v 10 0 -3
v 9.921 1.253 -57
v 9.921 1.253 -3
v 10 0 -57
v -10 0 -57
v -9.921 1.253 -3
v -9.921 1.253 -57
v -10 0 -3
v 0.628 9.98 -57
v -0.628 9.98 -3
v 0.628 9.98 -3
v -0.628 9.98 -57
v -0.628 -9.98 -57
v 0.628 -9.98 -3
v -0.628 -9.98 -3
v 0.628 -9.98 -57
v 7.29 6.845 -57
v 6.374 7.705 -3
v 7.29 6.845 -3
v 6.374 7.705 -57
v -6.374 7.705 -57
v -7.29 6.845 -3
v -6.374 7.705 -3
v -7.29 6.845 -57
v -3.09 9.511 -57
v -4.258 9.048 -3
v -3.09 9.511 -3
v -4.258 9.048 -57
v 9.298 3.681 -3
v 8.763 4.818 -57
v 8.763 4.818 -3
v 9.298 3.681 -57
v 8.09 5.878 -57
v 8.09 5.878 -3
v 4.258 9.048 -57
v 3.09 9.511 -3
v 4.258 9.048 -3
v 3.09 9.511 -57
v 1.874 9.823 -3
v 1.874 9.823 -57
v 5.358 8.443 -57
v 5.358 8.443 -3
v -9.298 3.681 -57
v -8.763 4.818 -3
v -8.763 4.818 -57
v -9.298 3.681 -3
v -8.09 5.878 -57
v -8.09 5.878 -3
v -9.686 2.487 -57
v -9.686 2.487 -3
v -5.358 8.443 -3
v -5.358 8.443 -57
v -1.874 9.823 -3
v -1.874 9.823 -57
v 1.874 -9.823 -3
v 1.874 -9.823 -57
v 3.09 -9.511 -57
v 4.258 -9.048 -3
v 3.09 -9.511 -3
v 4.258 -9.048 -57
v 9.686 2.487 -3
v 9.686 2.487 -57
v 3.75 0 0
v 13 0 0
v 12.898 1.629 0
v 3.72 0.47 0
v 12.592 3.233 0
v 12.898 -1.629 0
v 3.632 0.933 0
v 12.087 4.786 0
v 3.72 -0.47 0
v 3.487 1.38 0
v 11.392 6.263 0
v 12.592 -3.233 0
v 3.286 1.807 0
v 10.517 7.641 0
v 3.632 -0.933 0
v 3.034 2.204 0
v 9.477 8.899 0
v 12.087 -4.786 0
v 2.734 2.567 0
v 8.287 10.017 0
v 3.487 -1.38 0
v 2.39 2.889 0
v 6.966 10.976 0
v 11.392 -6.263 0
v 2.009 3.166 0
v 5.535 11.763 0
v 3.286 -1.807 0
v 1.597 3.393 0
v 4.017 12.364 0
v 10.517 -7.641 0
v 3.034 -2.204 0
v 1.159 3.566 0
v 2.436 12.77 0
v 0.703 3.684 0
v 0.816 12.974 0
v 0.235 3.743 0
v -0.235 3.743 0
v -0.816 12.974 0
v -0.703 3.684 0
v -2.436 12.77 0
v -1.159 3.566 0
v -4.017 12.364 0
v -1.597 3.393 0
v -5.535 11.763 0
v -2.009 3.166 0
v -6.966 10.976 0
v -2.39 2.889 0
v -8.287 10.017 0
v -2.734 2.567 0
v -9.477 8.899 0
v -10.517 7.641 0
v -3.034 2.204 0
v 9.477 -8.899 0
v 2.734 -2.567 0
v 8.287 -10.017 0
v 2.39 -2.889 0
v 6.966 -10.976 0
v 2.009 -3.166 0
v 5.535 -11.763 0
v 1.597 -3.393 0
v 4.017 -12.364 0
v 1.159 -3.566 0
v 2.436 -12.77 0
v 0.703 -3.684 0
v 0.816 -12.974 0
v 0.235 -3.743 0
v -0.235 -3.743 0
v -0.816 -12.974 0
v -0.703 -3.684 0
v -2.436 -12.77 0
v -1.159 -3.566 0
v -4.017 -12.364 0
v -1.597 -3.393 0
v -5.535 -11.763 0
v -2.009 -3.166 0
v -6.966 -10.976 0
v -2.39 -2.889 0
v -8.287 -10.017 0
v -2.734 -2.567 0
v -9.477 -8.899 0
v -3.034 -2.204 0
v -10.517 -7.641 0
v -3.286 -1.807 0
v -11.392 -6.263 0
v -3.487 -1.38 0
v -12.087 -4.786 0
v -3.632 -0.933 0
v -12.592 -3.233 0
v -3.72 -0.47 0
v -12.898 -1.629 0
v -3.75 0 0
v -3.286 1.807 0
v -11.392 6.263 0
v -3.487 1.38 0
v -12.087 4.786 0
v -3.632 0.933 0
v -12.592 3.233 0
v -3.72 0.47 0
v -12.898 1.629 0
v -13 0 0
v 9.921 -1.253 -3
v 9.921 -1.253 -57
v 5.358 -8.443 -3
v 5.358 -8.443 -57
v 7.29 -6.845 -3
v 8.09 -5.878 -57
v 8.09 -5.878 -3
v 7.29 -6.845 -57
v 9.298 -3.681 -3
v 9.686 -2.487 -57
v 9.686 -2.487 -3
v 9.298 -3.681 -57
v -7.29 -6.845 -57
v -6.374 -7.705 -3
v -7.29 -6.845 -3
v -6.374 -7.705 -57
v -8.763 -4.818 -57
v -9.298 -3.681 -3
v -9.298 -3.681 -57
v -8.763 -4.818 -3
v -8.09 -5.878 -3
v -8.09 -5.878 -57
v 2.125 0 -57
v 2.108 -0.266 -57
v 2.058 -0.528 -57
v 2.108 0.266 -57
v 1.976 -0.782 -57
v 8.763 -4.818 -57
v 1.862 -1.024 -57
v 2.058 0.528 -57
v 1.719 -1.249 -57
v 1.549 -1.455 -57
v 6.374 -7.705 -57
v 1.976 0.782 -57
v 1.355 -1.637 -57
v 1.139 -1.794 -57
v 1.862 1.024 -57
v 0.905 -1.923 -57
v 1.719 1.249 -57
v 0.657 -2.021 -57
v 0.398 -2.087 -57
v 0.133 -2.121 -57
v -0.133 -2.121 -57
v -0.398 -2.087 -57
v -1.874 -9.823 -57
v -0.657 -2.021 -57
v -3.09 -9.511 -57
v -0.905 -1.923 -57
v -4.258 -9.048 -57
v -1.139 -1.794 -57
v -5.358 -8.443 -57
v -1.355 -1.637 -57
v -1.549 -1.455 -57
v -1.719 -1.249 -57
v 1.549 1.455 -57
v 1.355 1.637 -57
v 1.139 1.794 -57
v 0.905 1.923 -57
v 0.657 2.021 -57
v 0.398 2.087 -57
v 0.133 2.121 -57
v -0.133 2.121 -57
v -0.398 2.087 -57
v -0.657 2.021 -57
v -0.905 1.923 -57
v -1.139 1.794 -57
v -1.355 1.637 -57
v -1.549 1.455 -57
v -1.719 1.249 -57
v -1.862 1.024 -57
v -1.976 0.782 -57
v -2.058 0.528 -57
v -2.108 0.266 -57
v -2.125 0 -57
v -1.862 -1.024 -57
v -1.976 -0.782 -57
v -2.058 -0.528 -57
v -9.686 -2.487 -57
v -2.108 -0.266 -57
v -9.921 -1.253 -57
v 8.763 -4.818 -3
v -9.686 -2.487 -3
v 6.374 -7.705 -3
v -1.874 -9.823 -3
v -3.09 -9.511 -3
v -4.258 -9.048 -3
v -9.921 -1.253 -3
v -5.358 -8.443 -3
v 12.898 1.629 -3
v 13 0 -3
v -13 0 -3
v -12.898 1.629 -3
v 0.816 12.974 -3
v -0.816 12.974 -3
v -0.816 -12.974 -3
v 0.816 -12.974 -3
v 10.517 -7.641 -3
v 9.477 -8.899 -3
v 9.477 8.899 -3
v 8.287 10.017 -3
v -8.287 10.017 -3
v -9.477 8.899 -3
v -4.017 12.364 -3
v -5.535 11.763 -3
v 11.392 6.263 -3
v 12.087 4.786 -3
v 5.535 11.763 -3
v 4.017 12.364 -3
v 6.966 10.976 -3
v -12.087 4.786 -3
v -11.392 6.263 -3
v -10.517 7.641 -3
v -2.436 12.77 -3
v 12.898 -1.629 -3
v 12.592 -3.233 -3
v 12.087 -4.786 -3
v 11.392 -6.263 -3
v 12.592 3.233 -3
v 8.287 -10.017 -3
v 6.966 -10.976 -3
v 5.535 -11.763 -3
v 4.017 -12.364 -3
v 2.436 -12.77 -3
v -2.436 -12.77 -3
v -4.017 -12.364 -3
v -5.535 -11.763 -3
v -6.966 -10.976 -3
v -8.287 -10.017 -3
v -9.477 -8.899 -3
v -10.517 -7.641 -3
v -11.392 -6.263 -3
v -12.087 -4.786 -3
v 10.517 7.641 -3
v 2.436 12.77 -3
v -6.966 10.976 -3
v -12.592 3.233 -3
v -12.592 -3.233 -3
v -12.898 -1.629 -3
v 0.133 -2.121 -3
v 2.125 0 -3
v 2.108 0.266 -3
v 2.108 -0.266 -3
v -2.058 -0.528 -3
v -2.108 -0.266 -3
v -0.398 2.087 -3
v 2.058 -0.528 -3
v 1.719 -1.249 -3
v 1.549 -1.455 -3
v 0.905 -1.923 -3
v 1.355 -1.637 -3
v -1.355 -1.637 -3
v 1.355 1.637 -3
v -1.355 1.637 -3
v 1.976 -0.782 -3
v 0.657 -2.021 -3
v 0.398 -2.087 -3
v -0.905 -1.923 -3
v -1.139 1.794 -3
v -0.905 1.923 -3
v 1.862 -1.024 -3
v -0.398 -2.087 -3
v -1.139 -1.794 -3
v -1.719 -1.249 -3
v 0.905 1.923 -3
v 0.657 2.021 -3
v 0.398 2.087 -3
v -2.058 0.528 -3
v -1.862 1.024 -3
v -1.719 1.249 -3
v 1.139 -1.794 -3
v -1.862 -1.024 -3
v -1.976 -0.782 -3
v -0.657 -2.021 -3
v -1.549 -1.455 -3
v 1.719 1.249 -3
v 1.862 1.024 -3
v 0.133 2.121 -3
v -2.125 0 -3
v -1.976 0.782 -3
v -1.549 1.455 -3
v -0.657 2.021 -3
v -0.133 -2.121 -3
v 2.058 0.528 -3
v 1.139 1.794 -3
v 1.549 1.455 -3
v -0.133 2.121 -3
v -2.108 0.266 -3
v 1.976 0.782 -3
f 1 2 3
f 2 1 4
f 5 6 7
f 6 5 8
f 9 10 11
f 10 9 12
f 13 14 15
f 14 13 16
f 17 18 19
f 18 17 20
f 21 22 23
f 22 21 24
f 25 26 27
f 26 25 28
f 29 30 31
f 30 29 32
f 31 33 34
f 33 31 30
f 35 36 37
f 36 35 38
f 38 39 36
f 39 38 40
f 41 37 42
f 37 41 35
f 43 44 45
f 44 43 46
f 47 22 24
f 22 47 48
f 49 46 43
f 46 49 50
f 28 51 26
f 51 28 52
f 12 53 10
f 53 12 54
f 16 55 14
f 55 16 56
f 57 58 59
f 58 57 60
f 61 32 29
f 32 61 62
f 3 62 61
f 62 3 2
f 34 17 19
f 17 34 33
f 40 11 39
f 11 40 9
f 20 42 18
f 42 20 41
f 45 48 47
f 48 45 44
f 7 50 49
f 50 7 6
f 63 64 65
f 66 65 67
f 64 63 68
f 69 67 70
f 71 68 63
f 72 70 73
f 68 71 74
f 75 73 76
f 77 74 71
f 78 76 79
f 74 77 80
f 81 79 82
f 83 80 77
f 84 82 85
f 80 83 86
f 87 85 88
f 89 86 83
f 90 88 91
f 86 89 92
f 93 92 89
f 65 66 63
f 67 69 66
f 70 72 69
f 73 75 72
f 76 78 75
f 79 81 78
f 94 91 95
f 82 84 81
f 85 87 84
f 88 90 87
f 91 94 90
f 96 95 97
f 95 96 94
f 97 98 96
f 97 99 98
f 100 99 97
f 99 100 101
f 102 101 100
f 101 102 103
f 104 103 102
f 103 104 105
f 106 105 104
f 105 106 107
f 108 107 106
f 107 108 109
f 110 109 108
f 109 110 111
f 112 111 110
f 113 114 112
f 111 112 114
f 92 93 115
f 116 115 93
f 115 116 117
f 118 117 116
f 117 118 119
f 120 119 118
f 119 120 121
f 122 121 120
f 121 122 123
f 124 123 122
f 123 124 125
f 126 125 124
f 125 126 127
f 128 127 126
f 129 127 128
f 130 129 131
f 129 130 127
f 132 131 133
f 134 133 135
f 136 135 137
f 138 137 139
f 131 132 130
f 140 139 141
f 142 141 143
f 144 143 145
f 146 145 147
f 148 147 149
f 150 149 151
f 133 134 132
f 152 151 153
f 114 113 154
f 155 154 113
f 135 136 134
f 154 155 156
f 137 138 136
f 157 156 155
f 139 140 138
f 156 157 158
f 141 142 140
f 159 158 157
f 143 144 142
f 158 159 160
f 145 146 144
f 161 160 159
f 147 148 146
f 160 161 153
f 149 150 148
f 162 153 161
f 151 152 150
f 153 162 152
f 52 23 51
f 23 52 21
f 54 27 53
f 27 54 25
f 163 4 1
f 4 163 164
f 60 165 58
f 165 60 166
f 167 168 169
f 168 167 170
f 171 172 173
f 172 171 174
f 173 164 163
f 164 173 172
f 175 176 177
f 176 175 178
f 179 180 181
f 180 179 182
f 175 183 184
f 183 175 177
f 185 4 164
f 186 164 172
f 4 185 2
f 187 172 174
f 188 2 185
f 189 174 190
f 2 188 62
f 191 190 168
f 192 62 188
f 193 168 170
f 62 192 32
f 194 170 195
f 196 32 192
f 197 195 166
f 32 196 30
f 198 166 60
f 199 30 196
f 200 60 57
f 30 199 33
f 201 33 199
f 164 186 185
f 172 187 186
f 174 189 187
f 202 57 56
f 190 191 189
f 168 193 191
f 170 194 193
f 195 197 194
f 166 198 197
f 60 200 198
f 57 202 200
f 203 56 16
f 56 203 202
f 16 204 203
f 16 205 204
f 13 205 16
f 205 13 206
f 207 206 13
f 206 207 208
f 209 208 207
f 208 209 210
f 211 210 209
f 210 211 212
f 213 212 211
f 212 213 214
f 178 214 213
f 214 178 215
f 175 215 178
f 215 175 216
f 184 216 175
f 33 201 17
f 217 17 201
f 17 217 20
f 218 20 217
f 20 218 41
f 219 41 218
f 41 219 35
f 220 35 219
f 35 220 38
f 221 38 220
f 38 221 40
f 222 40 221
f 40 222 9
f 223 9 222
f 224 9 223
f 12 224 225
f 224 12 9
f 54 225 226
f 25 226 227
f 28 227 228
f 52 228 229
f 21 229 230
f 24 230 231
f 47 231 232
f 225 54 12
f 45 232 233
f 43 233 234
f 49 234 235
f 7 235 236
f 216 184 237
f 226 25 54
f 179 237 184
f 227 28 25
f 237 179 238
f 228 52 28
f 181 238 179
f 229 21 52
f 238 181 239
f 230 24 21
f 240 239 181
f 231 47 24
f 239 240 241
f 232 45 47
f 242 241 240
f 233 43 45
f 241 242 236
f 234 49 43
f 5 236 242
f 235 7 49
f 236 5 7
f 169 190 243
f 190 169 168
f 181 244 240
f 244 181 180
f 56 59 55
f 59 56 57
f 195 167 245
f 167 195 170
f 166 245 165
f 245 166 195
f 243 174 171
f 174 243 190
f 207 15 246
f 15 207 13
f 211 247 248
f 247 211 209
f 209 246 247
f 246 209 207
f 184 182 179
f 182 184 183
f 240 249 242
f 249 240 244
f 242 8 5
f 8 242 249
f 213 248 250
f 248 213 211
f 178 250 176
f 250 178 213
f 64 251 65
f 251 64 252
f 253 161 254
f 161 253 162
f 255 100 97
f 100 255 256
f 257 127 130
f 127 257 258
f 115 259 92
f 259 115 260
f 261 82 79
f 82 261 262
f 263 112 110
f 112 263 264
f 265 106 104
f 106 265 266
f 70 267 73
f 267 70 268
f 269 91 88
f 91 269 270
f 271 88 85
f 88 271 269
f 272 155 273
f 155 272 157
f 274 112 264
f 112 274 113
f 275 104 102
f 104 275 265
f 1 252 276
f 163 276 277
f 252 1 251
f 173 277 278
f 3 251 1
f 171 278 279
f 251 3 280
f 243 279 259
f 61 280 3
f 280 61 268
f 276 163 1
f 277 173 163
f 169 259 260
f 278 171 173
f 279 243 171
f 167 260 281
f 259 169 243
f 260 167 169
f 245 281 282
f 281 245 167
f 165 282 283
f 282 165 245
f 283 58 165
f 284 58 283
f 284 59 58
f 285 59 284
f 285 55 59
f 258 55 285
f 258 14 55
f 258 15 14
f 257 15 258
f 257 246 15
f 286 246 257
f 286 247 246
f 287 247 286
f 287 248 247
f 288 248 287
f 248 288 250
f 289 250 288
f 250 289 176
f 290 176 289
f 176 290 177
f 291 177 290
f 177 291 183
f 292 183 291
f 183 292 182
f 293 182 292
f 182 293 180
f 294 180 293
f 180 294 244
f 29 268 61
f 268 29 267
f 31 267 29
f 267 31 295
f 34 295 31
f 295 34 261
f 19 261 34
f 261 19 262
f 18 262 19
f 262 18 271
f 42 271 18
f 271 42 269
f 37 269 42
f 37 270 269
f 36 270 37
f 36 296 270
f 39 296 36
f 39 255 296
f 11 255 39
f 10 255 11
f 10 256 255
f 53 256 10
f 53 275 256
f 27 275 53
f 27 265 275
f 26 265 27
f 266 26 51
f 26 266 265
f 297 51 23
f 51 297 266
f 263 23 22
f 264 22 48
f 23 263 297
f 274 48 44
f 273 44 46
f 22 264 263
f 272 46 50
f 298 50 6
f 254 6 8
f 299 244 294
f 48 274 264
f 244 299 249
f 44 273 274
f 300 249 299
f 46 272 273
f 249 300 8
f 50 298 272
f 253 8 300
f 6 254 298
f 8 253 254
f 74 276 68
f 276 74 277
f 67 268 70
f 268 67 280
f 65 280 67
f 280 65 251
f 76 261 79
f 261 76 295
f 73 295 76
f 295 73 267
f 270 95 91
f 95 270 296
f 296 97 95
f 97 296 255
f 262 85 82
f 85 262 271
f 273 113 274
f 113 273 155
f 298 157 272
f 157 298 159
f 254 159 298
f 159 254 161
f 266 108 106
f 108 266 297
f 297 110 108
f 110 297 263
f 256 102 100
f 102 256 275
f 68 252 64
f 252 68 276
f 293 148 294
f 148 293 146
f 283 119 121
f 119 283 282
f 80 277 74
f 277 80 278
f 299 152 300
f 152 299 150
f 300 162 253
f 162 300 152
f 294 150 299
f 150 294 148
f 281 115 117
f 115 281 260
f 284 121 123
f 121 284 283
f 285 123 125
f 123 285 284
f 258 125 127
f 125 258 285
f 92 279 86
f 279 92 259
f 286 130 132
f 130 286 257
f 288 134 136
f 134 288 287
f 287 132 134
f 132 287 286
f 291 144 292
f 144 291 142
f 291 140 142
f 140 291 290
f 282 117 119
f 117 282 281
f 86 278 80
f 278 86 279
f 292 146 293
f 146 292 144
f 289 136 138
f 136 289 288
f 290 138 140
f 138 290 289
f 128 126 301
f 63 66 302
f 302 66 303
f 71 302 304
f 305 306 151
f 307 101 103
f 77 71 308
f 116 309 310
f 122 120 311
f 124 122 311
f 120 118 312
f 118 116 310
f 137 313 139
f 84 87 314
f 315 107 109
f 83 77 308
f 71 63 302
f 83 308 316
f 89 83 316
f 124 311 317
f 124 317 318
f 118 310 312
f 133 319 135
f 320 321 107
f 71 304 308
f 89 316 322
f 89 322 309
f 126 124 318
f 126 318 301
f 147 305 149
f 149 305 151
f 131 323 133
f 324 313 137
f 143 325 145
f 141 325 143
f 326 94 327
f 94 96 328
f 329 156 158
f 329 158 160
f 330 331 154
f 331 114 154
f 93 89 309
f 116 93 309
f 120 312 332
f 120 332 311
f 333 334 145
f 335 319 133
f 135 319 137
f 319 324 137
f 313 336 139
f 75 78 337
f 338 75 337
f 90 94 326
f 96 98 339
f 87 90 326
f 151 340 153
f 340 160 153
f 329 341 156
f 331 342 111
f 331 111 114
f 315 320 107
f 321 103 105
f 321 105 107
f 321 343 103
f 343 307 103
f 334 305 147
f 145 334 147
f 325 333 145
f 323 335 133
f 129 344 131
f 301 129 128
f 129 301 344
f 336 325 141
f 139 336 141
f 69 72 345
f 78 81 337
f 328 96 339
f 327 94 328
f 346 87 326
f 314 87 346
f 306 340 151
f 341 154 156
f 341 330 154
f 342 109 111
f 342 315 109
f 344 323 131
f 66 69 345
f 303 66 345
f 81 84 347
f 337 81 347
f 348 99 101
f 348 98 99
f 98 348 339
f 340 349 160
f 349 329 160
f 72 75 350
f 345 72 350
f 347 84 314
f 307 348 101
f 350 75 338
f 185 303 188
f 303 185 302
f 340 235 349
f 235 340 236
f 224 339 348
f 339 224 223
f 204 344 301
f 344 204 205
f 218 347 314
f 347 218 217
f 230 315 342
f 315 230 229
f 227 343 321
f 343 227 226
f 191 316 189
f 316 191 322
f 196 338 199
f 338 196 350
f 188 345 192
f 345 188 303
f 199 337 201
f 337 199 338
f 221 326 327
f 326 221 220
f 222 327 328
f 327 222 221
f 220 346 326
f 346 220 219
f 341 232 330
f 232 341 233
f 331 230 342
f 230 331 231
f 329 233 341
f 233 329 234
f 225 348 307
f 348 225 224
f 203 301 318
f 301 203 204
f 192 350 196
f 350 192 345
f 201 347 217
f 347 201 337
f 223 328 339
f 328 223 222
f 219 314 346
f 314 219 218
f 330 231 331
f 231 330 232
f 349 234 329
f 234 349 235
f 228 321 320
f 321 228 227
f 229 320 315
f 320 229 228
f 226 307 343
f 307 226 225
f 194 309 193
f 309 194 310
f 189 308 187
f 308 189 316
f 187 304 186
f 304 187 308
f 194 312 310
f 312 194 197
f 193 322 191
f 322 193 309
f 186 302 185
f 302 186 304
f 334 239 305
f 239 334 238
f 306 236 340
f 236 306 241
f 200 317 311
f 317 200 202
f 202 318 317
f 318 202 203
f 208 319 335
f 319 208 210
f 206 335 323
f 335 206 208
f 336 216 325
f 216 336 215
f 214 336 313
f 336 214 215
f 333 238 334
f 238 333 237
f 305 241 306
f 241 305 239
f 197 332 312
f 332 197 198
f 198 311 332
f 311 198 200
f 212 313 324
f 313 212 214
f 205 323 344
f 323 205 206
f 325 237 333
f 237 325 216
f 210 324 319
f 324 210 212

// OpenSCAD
$fn = 50;


difference() {
	union() {
		translate(v = [0, 0, -57.0000000000]) {
			cylinder(h = 57, r = 10.0000000000);
		}
		translate(v = [0, 0, -3.0000000000]) {
			cylinder(h = 3, r = 13.0000000000);
		}
	}
	union() {
		translate(v = [0, 0, 0]) {
			rotate(a = [0, 0, 0]) {
				difference() {
					union() {
						#translate(v = [0, 0, -57.0000000000]) {
							cylinder(h = 57, r = 2.0000000000);
						}
						#translate(v = [0, 0, -3]) {
							cylinder(h = 3, r1 = 2.1250000000, r2 = 3.7500000000);
						}
						#translate(v = [0, 0, -57.0000000000]) {
							cylinder(h = 57, r = 2.1250000000);
						}
						#translate(v = [0, 0, -57.0000000000]) {
							cylinder(h = 57, r = 2.0000000000);
						}
					}
					union();
				}
			}
		}
	}
}
